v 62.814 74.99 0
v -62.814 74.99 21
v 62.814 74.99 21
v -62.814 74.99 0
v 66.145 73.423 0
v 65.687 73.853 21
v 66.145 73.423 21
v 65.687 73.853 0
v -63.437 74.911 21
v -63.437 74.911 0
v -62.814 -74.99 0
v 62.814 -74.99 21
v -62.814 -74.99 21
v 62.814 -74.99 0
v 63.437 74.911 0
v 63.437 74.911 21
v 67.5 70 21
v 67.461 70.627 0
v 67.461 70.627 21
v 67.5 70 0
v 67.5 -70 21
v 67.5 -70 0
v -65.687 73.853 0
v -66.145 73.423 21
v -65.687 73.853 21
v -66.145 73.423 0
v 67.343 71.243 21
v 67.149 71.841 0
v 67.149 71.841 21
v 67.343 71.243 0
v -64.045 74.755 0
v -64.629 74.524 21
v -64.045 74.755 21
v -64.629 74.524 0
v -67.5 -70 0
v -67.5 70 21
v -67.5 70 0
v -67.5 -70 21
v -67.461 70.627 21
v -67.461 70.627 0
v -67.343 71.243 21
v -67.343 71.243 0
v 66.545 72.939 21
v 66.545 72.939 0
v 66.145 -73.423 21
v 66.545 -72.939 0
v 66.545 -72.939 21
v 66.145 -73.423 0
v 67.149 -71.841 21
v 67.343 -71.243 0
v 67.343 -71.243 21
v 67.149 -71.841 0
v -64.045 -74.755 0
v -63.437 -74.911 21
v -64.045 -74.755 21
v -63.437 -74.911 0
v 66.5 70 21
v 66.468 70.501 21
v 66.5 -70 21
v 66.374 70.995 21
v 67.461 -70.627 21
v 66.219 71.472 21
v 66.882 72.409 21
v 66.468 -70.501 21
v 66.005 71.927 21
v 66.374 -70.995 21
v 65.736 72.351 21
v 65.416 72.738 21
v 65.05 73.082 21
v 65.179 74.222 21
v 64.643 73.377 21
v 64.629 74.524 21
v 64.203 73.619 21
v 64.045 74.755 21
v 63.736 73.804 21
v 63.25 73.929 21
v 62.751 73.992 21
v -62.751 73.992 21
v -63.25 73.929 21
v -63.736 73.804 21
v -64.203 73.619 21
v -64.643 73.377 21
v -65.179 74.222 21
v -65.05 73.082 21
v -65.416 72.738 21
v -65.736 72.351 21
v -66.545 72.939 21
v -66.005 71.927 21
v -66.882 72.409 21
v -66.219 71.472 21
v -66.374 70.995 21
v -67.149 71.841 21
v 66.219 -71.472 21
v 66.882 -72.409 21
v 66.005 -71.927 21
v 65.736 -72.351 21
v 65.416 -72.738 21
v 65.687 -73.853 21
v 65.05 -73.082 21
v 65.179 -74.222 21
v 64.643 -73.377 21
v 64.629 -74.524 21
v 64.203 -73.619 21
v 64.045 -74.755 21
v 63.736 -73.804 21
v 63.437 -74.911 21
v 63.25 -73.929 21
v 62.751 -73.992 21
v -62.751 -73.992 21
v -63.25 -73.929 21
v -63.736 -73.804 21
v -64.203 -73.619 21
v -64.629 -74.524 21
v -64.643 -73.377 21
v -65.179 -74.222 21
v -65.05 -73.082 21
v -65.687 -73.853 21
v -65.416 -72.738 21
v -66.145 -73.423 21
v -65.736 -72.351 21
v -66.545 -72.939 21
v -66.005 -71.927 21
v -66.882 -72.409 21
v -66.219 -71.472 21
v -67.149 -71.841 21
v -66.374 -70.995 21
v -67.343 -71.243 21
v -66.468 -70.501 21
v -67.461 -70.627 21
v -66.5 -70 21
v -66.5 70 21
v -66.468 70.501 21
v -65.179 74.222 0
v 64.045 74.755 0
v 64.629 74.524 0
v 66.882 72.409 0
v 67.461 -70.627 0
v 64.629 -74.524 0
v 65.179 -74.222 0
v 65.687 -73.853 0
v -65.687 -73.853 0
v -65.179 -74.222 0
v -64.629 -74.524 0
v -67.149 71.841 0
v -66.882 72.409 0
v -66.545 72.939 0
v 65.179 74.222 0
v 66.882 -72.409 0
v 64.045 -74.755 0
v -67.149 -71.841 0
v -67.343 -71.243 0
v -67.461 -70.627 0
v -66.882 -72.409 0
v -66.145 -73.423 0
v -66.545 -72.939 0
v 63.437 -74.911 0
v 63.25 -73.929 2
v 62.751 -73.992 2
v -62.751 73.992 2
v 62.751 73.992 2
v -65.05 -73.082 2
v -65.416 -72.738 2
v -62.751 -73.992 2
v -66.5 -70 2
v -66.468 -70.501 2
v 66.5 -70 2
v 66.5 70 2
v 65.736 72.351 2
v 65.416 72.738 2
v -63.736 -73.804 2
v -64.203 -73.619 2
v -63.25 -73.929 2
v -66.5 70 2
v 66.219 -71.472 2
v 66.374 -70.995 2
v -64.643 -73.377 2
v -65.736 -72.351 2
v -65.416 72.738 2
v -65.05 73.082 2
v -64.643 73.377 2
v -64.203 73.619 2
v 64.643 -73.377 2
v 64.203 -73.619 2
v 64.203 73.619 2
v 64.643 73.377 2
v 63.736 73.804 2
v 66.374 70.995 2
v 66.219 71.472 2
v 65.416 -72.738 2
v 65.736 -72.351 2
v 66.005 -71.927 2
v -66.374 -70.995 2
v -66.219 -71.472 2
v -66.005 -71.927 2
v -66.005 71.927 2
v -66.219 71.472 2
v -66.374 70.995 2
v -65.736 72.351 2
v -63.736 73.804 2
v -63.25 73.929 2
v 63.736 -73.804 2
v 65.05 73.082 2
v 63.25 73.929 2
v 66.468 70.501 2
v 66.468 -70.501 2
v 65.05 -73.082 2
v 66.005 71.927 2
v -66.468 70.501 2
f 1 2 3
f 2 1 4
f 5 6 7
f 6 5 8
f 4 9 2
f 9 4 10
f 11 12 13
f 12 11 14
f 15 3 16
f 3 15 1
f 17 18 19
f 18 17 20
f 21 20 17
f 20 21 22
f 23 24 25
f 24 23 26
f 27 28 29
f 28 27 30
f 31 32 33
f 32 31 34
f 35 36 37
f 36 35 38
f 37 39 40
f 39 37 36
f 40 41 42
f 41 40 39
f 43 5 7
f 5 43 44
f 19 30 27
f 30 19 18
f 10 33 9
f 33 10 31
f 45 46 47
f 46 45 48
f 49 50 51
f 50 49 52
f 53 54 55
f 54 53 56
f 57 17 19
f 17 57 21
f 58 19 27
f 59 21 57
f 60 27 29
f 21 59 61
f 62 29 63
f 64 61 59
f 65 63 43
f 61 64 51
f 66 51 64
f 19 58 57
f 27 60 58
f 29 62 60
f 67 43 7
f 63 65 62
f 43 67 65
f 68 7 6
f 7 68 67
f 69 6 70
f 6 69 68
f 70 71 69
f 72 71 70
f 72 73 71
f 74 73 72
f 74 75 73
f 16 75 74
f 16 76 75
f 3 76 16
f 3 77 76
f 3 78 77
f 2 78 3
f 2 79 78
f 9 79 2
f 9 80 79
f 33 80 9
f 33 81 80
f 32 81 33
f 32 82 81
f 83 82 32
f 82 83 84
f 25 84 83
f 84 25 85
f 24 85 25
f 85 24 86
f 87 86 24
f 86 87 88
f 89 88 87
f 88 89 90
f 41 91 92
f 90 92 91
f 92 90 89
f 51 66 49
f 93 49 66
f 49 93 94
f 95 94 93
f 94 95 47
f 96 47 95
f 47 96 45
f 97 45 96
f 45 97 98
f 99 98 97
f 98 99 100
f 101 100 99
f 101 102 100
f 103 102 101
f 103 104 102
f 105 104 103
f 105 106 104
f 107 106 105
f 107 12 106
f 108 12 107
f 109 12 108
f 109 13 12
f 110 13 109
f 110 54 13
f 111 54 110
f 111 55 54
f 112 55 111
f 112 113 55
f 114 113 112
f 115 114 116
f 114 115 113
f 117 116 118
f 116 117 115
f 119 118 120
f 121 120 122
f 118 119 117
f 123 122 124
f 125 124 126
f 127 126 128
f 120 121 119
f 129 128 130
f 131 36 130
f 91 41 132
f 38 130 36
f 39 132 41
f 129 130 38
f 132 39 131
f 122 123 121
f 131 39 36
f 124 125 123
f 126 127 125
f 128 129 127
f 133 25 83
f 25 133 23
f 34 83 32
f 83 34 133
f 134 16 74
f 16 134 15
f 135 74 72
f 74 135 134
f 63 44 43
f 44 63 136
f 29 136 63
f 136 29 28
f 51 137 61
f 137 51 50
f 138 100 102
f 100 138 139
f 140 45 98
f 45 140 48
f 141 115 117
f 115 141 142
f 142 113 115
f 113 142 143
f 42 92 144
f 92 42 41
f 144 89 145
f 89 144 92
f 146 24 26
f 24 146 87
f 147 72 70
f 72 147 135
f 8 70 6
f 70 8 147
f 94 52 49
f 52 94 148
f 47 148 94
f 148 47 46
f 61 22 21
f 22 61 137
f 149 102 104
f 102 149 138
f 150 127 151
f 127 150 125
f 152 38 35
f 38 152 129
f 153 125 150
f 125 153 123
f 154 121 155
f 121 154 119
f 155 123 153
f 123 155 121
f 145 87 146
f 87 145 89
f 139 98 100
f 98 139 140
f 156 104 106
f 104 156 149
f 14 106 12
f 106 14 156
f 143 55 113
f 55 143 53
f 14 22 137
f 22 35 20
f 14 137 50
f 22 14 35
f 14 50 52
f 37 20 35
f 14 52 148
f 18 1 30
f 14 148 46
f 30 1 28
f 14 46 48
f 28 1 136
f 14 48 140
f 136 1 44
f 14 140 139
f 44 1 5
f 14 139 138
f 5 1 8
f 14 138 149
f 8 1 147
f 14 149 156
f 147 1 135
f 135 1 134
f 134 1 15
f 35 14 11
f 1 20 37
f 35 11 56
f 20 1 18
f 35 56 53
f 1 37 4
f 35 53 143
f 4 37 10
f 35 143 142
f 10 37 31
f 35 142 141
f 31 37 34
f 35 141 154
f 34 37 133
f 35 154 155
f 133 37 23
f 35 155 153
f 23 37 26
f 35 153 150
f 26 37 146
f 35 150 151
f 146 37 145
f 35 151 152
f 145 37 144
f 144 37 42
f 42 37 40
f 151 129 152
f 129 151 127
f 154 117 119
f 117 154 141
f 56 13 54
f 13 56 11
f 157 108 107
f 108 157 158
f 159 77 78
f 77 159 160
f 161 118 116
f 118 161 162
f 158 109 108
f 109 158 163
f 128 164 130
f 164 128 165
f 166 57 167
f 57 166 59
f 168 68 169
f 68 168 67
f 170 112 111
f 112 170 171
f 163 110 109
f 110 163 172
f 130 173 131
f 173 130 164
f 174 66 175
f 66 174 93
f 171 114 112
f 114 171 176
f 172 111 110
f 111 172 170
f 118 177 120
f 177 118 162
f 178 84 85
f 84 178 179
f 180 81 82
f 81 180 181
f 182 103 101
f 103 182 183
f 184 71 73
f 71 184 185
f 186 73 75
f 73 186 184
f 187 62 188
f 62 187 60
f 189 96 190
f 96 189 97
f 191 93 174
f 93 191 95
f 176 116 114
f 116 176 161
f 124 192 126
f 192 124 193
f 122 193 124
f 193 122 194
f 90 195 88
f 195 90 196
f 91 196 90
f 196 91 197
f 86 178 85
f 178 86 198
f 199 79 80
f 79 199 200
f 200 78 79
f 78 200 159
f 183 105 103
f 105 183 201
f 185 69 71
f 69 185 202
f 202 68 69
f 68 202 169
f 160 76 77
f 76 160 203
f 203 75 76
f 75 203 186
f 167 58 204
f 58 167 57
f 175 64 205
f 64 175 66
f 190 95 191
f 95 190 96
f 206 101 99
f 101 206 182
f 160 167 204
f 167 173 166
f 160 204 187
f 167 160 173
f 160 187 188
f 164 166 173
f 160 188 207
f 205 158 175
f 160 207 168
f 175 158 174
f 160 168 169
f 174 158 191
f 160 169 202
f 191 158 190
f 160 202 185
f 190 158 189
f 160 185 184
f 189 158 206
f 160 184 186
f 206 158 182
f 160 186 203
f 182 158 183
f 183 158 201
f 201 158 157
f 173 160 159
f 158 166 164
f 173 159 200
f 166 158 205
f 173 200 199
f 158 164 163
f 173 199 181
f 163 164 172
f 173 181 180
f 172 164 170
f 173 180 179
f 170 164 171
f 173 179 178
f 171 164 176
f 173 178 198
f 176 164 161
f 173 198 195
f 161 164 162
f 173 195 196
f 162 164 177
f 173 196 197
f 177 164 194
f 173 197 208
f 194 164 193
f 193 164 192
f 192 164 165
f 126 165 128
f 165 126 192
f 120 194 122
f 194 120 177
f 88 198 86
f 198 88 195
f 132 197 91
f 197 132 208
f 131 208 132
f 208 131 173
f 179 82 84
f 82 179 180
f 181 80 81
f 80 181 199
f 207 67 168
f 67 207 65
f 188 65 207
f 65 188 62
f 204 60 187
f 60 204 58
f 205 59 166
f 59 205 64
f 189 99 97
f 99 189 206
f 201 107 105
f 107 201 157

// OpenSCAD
$fn = 50;


difference() {
	union() {
		hull() {
			translate(v = [-62.5000000000, 70.0000000000, 0]) {
				cylinder(h = 21, r = 5);
			}
			translate(v = [62.5000000000, 70.0000000000, 0]) {
				cylinder(h = 21, r = 5);
			}
			translate(v = [-62.5000000000, -70.0000000000, 0]) {
				cylinder(h = 21, r = 5);
			}
			translate(v = [62.5000000000, -70.0000000000, 0]) {
				cylinder(h = 21, r = 5);
			}
		}
	}
	union() {
		translate(v = [0, 0, 2]) {
			hull() {
				translate(v = [-62.5000000000, 70.0000000000, 0]) {
					cylinder(h = 19, r = 4);
				}
				translate(v = [62.5000000000, 70.0000000000, 0]) {
					cylinder(h = 19, r = 4);
				}
				translate(v = [-62.5000000000, -70.0000000000, 0]) {
					cylinder(h = 19, r = 4);
				}
				translate(v = [62.5000000000, -70.0000000000, 0]) {
					cylinder(h = 19, r = 4);
				}
			}
		}
	}
}
